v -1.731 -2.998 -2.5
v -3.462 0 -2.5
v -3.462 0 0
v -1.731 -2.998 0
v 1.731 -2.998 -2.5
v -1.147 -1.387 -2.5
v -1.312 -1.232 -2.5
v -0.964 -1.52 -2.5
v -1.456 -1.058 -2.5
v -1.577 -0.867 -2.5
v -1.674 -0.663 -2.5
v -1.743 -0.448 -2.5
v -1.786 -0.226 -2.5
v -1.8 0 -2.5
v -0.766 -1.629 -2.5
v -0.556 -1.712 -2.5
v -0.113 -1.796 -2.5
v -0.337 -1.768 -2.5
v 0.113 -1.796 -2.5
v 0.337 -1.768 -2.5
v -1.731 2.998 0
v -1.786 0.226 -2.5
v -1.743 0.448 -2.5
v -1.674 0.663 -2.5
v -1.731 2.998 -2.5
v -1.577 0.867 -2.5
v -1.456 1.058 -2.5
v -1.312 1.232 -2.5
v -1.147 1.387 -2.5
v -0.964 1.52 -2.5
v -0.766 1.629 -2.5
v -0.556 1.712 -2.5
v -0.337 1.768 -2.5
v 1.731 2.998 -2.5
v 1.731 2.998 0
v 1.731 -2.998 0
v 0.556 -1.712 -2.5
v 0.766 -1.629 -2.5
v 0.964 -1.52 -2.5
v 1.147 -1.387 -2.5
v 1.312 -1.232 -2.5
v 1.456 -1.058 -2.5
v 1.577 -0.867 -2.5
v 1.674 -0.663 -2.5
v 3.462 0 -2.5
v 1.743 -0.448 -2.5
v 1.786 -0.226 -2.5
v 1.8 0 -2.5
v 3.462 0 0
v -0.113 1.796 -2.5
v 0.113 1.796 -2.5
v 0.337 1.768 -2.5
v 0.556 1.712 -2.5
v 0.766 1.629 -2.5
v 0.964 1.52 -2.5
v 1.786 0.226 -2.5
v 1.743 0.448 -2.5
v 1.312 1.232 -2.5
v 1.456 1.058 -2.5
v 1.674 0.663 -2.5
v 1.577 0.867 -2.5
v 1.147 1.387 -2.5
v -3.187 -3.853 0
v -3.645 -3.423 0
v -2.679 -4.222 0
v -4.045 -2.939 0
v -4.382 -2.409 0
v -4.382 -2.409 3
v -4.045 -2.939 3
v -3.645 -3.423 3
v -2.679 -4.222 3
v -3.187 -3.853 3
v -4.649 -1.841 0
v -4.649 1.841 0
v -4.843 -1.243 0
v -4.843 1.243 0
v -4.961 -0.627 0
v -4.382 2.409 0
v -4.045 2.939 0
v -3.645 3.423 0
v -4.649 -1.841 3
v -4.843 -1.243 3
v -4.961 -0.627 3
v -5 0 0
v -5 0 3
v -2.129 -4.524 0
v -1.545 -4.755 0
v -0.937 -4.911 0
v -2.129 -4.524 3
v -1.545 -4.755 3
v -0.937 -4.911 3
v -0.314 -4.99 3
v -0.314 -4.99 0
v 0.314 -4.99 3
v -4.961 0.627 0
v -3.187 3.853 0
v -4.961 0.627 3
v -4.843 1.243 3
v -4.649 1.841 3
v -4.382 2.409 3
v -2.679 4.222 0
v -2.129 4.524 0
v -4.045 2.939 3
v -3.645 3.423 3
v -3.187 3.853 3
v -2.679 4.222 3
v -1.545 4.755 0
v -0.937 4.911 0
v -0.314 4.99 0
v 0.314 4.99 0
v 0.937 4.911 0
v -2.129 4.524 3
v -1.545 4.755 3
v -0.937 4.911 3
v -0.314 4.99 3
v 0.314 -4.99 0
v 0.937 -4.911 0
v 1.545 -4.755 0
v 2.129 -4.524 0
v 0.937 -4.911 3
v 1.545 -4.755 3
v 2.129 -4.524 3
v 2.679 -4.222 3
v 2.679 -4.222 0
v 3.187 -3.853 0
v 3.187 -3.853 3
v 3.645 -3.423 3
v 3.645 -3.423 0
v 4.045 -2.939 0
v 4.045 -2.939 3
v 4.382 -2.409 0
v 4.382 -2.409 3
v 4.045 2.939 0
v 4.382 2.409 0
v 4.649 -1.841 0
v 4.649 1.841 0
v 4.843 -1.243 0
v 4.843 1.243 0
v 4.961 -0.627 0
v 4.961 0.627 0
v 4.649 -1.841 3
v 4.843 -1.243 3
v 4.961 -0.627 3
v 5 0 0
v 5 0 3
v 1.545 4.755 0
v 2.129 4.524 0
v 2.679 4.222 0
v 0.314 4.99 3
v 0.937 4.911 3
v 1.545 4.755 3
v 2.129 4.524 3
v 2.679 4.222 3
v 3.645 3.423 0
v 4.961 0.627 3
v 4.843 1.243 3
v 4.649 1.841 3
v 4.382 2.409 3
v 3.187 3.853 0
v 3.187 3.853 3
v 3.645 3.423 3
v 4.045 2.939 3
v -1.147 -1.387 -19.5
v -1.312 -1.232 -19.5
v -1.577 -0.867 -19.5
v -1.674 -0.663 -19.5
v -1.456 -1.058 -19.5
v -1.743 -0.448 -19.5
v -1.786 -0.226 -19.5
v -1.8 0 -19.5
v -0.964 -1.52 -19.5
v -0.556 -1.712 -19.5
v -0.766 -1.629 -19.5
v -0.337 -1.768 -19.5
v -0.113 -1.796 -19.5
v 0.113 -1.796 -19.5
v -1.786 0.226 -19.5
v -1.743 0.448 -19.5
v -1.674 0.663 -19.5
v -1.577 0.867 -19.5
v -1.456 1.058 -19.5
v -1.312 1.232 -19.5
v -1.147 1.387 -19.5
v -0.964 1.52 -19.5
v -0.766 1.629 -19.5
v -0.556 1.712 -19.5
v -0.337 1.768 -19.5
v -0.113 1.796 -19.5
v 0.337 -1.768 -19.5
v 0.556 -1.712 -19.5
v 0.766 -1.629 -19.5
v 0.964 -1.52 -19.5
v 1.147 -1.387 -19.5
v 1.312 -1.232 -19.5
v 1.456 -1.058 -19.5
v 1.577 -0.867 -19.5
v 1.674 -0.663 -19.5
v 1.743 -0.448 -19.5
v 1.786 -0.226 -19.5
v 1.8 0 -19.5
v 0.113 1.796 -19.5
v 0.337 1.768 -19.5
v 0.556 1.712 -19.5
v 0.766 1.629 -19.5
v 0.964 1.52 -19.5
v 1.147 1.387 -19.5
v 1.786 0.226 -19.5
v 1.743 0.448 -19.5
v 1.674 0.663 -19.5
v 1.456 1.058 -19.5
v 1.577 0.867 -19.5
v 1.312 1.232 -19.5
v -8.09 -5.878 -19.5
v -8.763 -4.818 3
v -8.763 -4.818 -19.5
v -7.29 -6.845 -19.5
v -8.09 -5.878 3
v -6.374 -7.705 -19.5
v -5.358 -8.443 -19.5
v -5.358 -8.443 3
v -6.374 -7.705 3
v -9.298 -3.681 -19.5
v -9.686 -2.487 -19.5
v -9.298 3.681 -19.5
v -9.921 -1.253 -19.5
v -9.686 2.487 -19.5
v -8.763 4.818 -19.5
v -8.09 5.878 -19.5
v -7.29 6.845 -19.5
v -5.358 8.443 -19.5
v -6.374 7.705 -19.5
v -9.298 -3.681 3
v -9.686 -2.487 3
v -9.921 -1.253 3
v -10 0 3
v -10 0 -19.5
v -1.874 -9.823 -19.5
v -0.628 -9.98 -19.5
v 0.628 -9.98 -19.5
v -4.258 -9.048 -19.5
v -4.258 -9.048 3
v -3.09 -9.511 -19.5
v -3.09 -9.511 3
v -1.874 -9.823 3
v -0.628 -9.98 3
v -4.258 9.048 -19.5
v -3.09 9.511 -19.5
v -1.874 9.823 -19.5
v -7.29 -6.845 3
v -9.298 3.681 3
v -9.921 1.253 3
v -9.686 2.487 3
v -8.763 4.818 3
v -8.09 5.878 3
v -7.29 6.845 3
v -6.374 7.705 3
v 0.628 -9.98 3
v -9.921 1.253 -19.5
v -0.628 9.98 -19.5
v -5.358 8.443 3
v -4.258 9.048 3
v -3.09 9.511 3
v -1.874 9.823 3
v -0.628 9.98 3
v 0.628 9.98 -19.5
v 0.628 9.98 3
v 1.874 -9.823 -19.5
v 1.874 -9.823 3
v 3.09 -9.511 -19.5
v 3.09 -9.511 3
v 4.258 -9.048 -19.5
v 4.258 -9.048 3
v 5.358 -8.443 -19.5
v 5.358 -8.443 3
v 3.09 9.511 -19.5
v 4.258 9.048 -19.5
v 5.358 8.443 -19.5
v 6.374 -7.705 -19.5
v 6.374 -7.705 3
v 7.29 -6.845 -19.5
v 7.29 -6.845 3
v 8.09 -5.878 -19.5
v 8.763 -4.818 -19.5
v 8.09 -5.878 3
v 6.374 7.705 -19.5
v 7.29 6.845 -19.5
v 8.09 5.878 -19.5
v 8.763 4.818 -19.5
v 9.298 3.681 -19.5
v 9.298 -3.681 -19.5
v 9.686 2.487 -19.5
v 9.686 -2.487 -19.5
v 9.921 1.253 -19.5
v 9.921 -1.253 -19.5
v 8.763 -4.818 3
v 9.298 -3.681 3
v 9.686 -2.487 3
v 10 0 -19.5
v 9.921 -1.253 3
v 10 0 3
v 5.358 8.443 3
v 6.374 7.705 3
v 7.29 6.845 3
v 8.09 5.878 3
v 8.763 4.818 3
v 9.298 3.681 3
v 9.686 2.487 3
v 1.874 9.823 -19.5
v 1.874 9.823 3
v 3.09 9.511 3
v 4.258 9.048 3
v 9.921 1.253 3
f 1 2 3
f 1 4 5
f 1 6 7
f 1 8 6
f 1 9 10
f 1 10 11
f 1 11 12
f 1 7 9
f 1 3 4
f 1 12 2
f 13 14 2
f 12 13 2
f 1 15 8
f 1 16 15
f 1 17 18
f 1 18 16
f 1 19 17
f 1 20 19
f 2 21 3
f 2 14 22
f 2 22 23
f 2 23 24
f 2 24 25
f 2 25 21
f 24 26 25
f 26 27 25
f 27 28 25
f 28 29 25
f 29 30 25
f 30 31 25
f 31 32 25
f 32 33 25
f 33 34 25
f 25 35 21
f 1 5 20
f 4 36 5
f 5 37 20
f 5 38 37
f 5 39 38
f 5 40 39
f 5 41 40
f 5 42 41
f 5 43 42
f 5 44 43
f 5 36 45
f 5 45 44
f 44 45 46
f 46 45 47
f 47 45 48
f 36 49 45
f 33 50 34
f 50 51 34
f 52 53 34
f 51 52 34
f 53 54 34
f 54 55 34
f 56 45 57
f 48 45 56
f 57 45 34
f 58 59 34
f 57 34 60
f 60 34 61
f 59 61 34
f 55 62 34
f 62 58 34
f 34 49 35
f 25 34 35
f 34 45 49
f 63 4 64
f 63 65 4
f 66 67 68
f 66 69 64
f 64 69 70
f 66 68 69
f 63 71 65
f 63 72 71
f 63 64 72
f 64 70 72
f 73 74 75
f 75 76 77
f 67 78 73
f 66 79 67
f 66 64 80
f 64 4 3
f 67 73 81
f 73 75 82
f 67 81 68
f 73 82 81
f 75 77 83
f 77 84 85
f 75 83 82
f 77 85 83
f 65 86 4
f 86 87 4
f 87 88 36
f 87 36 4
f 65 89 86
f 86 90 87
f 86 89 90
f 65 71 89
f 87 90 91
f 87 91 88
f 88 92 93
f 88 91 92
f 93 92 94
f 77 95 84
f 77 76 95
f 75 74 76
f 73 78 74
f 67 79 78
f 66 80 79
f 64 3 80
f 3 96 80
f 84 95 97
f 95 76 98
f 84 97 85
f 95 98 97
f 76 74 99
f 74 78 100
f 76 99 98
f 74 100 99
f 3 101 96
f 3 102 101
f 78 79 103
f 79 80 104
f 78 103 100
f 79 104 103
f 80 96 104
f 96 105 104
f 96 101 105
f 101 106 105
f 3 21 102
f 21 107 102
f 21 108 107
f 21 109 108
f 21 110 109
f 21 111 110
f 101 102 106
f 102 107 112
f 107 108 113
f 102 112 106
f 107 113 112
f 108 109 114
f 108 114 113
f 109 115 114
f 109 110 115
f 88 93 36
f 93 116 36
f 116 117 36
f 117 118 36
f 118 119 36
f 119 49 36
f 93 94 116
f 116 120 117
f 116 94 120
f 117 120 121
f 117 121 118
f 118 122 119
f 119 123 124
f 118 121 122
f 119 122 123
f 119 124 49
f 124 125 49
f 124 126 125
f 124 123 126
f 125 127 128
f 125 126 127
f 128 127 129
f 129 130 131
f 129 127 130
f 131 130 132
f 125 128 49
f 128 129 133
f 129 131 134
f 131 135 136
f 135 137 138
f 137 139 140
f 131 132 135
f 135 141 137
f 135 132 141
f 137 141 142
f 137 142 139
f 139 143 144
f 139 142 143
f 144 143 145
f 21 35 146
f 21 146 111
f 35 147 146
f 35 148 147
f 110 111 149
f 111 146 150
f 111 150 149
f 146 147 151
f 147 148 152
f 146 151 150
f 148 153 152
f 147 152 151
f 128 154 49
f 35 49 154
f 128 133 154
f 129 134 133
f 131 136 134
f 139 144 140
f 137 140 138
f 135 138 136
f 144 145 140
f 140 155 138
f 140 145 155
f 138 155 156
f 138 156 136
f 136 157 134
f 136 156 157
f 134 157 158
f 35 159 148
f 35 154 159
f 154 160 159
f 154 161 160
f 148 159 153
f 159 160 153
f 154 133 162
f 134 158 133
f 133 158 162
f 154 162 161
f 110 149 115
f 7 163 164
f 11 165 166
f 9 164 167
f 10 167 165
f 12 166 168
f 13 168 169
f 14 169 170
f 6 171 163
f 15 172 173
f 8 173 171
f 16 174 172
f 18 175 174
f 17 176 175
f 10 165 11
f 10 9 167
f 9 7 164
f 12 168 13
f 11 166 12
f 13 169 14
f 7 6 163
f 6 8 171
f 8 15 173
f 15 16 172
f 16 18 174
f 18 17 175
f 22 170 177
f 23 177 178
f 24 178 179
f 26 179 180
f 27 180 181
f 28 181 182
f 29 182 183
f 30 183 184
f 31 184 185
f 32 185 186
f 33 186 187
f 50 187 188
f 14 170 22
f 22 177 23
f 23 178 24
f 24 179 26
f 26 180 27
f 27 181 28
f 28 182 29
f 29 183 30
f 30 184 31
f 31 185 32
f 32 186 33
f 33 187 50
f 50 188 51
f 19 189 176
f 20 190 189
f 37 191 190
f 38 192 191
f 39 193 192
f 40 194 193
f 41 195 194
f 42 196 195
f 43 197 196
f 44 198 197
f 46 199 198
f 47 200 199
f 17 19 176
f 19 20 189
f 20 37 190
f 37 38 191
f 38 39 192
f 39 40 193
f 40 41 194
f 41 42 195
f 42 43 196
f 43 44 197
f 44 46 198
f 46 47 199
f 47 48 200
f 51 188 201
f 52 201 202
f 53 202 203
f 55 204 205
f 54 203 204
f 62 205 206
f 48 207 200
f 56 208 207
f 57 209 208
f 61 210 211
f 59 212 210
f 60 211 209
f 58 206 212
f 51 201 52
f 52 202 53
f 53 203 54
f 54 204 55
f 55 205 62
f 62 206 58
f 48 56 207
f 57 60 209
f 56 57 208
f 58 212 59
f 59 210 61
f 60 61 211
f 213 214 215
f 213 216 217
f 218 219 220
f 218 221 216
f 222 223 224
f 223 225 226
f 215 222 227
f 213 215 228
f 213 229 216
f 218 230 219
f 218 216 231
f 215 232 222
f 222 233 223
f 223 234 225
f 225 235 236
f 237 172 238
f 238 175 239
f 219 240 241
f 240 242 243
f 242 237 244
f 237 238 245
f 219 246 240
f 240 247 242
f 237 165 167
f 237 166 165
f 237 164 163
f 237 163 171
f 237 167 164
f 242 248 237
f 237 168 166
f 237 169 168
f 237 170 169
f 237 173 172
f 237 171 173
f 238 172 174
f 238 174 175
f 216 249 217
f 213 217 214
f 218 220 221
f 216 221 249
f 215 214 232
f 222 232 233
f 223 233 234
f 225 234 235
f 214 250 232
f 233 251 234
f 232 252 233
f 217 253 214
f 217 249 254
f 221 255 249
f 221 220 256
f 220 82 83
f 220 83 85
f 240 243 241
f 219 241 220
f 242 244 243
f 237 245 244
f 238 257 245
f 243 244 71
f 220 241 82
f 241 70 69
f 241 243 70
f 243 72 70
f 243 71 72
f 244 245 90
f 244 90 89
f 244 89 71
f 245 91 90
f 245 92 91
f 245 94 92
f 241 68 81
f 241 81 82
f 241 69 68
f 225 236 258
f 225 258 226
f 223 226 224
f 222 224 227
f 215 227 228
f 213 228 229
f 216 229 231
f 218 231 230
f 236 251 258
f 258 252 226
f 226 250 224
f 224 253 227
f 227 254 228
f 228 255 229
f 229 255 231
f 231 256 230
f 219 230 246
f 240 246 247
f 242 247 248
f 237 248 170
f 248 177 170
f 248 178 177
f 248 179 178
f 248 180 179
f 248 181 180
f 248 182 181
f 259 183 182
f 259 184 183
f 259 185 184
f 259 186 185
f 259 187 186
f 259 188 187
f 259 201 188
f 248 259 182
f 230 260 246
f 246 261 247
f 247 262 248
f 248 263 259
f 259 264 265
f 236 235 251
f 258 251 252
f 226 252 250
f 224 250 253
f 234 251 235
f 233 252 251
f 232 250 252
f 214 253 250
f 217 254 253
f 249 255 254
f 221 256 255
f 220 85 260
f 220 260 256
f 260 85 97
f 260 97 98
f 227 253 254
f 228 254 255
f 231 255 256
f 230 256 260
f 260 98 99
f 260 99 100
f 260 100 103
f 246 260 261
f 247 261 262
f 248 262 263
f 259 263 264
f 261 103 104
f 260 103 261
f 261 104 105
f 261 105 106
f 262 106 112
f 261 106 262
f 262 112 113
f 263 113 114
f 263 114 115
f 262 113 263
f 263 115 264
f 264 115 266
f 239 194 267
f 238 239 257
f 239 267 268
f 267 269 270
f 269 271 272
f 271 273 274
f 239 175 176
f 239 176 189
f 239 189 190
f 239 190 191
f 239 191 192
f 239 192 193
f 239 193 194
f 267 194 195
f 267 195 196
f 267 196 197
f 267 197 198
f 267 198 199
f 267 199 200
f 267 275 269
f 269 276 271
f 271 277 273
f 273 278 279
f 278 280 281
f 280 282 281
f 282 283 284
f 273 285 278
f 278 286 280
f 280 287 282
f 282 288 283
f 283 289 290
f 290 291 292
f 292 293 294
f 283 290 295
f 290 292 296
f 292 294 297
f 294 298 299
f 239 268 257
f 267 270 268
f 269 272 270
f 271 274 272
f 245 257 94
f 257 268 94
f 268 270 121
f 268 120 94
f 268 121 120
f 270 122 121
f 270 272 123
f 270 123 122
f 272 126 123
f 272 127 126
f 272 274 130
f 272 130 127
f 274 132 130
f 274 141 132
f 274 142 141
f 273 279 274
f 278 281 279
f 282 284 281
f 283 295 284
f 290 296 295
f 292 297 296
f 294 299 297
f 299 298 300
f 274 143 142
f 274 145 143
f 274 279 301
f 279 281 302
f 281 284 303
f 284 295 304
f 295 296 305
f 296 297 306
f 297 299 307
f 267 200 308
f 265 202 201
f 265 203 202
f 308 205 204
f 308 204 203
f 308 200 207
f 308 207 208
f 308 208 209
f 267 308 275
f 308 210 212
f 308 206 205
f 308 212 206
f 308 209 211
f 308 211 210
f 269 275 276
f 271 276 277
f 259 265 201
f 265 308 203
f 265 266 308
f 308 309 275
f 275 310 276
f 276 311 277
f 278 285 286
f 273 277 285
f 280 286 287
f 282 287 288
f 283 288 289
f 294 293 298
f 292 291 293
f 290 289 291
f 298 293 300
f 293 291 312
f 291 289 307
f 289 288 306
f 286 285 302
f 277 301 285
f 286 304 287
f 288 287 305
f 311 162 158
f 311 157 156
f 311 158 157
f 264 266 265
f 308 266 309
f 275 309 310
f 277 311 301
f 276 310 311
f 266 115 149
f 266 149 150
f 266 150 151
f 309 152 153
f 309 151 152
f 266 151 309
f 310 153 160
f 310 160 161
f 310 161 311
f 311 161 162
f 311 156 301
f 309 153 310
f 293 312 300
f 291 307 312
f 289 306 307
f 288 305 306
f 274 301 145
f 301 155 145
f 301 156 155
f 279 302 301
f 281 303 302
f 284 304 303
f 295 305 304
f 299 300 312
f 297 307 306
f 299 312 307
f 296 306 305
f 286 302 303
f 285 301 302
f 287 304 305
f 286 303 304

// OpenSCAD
$fn = 50;


difference() {
	union() {
		translate(v = [0, 0, -19.5000000000]) {
			cylinder(h = 22.5000000000, r = 10.0000000000);
		}
	}
	union() {
		translate(v = [0, 0, 0]) {
			rotate(a = [0, 0, 0]) {
				difference() {
					union() {
						translate(v = [0, 0, -2.5000000000]) {
							linear_extrude(height = 2.5000000000) {
								polygon(points = [[3.4620000000, 0.0000000000], [1.7310000000, 2.9981799479], [-1.7310000000, 2.9981799479], [-3.4620000000, 0.0000000000], [-1.7310000000, -2.9981799479], [1.7310000000, -2.9981799479]]);
							}
						}
					}
					union();
				}
			}
		}
		#cylinder(h = 3, r = 5.0000000000);
		#translate(v = [0, 0, -100.0000000000]) {
			cylinder(h = 200, r = 1.8000000000);
		}
	}
}
